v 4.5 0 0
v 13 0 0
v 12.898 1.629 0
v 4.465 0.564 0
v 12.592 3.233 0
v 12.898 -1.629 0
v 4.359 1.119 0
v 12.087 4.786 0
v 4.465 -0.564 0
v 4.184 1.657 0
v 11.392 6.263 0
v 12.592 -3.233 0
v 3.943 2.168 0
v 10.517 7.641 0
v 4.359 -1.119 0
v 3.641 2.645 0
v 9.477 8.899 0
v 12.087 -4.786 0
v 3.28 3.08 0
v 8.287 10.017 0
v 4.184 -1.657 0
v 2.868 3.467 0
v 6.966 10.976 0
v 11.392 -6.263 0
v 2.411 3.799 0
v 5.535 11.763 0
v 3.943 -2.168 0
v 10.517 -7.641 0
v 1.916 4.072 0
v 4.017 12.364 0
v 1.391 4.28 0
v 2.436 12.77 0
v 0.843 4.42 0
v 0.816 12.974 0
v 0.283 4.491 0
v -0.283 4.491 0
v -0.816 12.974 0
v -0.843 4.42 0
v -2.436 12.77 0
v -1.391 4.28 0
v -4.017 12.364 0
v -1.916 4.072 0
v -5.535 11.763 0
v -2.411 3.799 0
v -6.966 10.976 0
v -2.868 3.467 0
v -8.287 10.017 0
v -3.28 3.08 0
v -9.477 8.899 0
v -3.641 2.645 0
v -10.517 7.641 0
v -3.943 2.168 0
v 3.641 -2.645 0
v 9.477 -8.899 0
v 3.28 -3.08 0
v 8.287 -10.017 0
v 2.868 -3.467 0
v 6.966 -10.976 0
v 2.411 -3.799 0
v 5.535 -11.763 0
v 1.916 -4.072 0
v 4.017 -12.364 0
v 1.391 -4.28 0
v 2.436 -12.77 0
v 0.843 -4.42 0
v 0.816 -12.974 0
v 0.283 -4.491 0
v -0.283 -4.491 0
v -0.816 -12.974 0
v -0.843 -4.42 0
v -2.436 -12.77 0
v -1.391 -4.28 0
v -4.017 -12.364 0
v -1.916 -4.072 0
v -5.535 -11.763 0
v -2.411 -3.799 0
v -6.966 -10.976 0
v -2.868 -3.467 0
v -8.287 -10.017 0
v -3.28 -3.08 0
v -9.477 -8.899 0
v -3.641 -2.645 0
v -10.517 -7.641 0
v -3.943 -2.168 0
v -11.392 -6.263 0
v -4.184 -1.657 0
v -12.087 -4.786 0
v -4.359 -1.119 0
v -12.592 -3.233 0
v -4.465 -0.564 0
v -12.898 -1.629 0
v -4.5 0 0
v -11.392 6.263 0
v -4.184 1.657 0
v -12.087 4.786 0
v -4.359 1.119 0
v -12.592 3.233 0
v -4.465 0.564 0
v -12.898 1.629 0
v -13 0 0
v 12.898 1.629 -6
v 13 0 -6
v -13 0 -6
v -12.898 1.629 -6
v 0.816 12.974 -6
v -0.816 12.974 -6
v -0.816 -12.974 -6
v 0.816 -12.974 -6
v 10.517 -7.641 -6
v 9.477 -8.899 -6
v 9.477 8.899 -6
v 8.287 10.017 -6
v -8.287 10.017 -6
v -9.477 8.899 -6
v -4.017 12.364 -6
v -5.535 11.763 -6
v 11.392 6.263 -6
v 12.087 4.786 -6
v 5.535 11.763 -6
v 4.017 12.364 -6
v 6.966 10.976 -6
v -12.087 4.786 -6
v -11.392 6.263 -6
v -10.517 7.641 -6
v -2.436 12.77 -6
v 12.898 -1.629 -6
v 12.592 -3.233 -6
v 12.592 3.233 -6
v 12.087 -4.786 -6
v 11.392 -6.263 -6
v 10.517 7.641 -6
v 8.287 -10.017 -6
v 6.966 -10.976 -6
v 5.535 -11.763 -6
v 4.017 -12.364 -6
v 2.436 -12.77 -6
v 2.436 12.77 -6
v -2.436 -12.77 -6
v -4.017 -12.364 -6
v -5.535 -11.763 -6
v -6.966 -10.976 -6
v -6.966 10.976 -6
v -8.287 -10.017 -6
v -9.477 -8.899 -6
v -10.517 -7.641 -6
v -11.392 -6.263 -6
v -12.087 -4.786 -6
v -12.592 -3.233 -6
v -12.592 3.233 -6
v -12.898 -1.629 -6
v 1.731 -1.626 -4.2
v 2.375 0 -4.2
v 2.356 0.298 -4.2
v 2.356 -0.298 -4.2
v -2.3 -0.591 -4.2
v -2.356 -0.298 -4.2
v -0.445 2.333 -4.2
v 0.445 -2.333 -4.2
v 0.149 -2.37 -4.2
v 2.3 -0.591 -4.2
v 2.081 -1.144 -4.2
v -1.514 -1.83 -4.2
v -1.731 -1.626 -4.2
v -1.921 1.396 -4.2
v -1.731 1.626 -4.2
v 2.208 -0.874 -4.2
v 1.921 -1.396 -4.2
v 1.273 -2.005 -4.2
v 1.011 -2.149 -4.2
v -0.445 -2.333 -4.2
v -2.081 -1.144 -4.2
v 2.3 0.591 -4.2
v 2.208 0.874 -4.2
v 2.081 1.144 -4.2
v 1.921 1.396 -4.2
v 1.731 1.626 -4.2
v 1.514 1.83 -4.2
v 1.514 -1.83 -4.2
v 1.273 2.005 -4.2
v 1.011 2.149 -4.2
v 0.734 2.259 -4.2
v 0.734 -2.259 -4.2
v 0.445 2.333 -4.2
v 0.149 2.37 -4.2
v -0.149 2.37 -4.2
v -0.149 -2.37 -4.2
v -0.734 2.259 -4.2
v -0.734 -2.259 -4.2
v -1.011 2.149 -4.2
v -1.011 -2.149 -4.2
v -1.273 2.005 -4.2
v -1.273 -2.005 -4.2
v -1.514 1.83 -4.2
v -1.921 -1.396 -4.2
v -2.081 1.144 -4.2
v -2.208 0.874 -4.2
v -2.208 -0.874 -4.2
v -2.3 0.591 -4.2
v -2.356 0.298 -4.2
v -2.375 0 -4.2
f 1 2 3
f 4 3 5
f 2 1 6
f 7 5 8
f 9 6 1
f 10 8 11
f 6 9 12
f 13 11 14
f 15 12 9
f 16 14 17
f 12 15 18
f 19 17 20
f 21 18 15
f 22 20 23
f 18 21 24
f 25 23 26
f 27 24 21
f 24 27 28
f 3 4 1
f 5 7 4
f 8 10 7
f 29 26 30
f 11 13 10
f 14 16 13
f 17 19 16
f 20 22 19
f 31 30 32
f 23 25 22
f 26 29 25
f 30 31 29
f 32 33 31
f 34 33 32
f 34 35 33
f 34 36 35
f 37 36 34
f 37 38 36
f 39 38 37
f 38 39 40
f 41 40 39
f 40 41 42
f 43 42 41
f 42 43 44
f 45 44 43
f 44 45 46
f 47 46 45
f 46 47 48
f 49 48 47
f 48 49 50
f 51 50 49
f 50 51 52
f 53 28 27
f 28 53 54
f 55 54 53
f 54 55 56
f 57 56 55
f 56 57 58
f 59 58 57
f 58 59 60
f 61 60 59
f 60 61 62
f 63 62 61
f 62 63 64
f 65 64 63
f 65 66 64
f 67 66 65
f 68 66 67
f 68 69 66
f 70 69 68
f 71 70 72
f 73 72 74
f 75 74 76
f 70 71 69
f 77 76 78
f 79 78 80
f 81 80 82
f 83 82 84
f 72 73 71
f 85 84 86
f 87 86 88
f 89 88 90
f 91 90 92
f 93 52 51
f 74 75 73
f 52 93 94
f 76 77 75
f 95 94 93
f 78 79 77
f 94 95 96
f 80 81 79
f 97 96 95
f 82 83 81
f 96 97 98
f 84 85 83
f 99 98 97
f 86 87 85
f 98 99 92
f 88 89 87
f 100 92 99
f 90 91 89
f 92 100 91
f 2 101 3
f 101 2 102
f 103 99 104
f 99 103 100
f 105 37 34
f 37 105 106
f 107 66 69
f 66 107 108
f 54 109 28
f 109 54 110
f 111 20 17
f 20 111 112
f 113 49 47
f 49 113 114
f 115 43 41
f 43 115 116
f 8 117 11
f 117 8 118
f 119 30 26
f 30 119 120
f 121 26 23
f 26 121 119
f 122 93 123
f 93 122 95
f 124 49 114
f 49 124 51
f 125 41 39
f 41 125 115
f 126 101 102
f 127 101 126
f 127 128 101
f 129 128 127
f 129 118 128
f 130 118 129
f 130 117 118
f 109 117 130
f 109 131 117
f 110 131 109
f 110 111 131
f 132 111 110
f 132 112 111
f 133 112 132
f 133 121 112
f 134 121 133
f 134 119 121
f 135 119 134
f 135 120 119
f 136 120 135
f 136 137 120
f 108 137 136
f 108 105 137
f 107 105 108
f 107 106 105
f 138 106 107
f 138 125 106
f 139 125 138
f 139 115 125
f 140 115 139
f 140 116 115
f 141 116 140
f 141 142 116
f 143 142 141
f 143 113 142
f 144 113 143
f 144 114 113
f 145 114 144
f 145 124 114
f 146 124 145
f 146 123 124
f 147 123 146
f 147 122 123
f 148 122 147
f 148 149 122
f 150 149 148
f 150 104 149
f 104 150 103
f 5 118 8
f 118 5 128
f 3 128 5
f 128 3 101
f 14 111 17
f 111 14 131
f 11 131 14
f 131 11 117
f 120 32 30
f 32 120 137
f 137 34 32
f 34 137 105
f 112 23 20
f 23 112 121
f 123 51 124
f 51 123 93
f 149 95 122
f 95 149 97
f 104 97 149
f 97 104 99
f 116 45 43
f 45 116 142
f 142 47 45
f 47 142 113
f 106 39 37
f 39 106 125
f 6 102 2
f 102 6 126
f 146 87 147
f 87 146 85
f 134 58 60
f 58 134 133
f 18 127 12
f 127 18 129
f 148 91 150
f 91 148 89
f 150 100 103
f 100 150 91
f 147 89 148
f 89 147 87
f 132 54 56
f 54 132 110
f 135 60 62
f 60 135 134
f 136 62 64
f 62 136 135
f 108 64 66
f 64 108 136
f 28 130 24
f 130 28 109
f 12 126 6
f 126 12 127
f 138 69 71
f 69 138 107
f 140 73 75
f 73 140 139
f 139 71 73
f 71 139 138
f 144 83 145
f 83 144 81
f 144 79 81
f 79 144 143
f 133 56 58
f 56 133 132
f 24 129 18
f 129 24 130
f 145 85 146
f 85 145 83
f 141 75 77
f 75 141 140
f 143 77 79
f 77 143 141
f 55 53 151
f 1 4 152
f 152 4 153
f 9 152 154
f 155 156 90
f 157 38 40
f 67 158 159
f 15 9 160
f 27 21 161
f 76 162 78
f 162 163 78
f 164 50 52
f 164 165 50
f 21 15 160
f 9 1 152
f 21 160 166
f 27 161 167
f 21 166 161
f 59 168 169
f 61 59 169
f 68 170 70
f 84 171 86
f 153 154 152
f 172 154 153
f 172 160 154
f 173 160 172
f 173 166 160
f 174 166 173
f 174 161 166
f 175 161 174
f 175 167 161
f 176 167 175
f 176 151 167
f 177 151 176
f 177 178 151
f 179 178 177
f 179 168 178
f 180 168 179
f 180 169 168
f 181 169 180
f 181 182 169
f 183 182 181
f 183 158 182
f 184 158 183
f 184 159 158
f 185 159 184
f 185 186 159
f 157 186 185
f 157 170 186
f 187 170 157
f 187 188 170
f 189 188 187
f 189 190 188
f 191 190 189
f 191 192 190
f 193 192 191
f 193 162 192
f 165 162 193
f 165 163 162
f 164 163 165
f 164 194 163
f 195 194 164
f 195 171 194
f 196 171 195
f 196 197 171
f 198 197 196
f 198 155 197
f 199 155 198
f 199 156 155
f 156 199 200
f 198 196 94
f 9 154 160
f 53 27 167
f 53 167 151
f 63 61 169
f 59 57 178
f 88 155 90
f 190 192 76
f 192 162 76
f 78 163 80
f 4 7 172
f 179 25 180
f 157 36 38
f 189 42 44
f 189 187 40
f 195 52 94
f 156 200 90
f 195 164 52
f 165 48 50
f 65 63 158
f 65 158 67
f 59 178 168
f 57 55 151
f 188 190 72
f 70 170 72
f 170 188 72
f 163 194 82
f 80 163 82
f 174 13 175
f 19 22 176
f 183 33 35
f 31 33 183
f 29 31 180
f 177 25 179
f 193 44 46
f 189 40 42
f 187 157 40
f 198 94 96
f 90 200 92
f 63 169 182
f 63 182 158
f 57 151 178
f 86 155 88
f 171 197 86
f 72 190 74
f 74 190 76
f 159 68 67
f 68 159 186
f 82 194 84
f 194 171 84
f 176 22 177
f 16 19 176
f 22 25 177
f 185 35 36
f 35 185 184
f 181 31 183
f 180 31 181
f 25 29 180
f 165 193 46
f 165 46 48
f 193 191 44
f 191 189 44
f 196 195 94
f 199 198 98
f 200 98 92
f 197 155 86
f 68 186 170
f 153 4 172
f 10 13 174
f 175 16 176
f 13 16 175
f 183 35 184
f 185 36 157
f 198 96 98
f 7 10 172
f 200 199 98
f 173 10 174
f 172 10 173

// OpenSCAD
$fn = 50;


difference() {
	union() {
		translate(v = [0, 0, -3.0000000000]) {
			cylinder(h = 3, r = 7.0000000000);
		}
		translate(v = [0, 0, -6.0000000000]) {
			cylinder(h = 6, r = 13.0000000000);
		}
	}
	union() {
		translate(v = [0, 0, 0]) {
			rotate(a = [0, 0, 0]) {
				difference() {
					union() {
						#translate(v = [0, 0, -3.0000000000]) {
							cylinder(h = 3, r = 2.2500000000);
						}
						#translate(v = [0, 0, -4.2000000000]) {
							cylinder(h = 4.2000000000, r = 7.0000000000, r1 = 2.3750000000, r2 = 4.5000000000);
						}
						#translate(v = [0, 0, -3.0000000000]) {
							cylinder(h = 3, r = 2.3750000000);
						}
						#translate(v = [0, 0, -3.0000000000]) {
							cylinder(h = 3, r = 2.2500000000);
						}
					}
					union();
				}
			}
		}
	}
}
